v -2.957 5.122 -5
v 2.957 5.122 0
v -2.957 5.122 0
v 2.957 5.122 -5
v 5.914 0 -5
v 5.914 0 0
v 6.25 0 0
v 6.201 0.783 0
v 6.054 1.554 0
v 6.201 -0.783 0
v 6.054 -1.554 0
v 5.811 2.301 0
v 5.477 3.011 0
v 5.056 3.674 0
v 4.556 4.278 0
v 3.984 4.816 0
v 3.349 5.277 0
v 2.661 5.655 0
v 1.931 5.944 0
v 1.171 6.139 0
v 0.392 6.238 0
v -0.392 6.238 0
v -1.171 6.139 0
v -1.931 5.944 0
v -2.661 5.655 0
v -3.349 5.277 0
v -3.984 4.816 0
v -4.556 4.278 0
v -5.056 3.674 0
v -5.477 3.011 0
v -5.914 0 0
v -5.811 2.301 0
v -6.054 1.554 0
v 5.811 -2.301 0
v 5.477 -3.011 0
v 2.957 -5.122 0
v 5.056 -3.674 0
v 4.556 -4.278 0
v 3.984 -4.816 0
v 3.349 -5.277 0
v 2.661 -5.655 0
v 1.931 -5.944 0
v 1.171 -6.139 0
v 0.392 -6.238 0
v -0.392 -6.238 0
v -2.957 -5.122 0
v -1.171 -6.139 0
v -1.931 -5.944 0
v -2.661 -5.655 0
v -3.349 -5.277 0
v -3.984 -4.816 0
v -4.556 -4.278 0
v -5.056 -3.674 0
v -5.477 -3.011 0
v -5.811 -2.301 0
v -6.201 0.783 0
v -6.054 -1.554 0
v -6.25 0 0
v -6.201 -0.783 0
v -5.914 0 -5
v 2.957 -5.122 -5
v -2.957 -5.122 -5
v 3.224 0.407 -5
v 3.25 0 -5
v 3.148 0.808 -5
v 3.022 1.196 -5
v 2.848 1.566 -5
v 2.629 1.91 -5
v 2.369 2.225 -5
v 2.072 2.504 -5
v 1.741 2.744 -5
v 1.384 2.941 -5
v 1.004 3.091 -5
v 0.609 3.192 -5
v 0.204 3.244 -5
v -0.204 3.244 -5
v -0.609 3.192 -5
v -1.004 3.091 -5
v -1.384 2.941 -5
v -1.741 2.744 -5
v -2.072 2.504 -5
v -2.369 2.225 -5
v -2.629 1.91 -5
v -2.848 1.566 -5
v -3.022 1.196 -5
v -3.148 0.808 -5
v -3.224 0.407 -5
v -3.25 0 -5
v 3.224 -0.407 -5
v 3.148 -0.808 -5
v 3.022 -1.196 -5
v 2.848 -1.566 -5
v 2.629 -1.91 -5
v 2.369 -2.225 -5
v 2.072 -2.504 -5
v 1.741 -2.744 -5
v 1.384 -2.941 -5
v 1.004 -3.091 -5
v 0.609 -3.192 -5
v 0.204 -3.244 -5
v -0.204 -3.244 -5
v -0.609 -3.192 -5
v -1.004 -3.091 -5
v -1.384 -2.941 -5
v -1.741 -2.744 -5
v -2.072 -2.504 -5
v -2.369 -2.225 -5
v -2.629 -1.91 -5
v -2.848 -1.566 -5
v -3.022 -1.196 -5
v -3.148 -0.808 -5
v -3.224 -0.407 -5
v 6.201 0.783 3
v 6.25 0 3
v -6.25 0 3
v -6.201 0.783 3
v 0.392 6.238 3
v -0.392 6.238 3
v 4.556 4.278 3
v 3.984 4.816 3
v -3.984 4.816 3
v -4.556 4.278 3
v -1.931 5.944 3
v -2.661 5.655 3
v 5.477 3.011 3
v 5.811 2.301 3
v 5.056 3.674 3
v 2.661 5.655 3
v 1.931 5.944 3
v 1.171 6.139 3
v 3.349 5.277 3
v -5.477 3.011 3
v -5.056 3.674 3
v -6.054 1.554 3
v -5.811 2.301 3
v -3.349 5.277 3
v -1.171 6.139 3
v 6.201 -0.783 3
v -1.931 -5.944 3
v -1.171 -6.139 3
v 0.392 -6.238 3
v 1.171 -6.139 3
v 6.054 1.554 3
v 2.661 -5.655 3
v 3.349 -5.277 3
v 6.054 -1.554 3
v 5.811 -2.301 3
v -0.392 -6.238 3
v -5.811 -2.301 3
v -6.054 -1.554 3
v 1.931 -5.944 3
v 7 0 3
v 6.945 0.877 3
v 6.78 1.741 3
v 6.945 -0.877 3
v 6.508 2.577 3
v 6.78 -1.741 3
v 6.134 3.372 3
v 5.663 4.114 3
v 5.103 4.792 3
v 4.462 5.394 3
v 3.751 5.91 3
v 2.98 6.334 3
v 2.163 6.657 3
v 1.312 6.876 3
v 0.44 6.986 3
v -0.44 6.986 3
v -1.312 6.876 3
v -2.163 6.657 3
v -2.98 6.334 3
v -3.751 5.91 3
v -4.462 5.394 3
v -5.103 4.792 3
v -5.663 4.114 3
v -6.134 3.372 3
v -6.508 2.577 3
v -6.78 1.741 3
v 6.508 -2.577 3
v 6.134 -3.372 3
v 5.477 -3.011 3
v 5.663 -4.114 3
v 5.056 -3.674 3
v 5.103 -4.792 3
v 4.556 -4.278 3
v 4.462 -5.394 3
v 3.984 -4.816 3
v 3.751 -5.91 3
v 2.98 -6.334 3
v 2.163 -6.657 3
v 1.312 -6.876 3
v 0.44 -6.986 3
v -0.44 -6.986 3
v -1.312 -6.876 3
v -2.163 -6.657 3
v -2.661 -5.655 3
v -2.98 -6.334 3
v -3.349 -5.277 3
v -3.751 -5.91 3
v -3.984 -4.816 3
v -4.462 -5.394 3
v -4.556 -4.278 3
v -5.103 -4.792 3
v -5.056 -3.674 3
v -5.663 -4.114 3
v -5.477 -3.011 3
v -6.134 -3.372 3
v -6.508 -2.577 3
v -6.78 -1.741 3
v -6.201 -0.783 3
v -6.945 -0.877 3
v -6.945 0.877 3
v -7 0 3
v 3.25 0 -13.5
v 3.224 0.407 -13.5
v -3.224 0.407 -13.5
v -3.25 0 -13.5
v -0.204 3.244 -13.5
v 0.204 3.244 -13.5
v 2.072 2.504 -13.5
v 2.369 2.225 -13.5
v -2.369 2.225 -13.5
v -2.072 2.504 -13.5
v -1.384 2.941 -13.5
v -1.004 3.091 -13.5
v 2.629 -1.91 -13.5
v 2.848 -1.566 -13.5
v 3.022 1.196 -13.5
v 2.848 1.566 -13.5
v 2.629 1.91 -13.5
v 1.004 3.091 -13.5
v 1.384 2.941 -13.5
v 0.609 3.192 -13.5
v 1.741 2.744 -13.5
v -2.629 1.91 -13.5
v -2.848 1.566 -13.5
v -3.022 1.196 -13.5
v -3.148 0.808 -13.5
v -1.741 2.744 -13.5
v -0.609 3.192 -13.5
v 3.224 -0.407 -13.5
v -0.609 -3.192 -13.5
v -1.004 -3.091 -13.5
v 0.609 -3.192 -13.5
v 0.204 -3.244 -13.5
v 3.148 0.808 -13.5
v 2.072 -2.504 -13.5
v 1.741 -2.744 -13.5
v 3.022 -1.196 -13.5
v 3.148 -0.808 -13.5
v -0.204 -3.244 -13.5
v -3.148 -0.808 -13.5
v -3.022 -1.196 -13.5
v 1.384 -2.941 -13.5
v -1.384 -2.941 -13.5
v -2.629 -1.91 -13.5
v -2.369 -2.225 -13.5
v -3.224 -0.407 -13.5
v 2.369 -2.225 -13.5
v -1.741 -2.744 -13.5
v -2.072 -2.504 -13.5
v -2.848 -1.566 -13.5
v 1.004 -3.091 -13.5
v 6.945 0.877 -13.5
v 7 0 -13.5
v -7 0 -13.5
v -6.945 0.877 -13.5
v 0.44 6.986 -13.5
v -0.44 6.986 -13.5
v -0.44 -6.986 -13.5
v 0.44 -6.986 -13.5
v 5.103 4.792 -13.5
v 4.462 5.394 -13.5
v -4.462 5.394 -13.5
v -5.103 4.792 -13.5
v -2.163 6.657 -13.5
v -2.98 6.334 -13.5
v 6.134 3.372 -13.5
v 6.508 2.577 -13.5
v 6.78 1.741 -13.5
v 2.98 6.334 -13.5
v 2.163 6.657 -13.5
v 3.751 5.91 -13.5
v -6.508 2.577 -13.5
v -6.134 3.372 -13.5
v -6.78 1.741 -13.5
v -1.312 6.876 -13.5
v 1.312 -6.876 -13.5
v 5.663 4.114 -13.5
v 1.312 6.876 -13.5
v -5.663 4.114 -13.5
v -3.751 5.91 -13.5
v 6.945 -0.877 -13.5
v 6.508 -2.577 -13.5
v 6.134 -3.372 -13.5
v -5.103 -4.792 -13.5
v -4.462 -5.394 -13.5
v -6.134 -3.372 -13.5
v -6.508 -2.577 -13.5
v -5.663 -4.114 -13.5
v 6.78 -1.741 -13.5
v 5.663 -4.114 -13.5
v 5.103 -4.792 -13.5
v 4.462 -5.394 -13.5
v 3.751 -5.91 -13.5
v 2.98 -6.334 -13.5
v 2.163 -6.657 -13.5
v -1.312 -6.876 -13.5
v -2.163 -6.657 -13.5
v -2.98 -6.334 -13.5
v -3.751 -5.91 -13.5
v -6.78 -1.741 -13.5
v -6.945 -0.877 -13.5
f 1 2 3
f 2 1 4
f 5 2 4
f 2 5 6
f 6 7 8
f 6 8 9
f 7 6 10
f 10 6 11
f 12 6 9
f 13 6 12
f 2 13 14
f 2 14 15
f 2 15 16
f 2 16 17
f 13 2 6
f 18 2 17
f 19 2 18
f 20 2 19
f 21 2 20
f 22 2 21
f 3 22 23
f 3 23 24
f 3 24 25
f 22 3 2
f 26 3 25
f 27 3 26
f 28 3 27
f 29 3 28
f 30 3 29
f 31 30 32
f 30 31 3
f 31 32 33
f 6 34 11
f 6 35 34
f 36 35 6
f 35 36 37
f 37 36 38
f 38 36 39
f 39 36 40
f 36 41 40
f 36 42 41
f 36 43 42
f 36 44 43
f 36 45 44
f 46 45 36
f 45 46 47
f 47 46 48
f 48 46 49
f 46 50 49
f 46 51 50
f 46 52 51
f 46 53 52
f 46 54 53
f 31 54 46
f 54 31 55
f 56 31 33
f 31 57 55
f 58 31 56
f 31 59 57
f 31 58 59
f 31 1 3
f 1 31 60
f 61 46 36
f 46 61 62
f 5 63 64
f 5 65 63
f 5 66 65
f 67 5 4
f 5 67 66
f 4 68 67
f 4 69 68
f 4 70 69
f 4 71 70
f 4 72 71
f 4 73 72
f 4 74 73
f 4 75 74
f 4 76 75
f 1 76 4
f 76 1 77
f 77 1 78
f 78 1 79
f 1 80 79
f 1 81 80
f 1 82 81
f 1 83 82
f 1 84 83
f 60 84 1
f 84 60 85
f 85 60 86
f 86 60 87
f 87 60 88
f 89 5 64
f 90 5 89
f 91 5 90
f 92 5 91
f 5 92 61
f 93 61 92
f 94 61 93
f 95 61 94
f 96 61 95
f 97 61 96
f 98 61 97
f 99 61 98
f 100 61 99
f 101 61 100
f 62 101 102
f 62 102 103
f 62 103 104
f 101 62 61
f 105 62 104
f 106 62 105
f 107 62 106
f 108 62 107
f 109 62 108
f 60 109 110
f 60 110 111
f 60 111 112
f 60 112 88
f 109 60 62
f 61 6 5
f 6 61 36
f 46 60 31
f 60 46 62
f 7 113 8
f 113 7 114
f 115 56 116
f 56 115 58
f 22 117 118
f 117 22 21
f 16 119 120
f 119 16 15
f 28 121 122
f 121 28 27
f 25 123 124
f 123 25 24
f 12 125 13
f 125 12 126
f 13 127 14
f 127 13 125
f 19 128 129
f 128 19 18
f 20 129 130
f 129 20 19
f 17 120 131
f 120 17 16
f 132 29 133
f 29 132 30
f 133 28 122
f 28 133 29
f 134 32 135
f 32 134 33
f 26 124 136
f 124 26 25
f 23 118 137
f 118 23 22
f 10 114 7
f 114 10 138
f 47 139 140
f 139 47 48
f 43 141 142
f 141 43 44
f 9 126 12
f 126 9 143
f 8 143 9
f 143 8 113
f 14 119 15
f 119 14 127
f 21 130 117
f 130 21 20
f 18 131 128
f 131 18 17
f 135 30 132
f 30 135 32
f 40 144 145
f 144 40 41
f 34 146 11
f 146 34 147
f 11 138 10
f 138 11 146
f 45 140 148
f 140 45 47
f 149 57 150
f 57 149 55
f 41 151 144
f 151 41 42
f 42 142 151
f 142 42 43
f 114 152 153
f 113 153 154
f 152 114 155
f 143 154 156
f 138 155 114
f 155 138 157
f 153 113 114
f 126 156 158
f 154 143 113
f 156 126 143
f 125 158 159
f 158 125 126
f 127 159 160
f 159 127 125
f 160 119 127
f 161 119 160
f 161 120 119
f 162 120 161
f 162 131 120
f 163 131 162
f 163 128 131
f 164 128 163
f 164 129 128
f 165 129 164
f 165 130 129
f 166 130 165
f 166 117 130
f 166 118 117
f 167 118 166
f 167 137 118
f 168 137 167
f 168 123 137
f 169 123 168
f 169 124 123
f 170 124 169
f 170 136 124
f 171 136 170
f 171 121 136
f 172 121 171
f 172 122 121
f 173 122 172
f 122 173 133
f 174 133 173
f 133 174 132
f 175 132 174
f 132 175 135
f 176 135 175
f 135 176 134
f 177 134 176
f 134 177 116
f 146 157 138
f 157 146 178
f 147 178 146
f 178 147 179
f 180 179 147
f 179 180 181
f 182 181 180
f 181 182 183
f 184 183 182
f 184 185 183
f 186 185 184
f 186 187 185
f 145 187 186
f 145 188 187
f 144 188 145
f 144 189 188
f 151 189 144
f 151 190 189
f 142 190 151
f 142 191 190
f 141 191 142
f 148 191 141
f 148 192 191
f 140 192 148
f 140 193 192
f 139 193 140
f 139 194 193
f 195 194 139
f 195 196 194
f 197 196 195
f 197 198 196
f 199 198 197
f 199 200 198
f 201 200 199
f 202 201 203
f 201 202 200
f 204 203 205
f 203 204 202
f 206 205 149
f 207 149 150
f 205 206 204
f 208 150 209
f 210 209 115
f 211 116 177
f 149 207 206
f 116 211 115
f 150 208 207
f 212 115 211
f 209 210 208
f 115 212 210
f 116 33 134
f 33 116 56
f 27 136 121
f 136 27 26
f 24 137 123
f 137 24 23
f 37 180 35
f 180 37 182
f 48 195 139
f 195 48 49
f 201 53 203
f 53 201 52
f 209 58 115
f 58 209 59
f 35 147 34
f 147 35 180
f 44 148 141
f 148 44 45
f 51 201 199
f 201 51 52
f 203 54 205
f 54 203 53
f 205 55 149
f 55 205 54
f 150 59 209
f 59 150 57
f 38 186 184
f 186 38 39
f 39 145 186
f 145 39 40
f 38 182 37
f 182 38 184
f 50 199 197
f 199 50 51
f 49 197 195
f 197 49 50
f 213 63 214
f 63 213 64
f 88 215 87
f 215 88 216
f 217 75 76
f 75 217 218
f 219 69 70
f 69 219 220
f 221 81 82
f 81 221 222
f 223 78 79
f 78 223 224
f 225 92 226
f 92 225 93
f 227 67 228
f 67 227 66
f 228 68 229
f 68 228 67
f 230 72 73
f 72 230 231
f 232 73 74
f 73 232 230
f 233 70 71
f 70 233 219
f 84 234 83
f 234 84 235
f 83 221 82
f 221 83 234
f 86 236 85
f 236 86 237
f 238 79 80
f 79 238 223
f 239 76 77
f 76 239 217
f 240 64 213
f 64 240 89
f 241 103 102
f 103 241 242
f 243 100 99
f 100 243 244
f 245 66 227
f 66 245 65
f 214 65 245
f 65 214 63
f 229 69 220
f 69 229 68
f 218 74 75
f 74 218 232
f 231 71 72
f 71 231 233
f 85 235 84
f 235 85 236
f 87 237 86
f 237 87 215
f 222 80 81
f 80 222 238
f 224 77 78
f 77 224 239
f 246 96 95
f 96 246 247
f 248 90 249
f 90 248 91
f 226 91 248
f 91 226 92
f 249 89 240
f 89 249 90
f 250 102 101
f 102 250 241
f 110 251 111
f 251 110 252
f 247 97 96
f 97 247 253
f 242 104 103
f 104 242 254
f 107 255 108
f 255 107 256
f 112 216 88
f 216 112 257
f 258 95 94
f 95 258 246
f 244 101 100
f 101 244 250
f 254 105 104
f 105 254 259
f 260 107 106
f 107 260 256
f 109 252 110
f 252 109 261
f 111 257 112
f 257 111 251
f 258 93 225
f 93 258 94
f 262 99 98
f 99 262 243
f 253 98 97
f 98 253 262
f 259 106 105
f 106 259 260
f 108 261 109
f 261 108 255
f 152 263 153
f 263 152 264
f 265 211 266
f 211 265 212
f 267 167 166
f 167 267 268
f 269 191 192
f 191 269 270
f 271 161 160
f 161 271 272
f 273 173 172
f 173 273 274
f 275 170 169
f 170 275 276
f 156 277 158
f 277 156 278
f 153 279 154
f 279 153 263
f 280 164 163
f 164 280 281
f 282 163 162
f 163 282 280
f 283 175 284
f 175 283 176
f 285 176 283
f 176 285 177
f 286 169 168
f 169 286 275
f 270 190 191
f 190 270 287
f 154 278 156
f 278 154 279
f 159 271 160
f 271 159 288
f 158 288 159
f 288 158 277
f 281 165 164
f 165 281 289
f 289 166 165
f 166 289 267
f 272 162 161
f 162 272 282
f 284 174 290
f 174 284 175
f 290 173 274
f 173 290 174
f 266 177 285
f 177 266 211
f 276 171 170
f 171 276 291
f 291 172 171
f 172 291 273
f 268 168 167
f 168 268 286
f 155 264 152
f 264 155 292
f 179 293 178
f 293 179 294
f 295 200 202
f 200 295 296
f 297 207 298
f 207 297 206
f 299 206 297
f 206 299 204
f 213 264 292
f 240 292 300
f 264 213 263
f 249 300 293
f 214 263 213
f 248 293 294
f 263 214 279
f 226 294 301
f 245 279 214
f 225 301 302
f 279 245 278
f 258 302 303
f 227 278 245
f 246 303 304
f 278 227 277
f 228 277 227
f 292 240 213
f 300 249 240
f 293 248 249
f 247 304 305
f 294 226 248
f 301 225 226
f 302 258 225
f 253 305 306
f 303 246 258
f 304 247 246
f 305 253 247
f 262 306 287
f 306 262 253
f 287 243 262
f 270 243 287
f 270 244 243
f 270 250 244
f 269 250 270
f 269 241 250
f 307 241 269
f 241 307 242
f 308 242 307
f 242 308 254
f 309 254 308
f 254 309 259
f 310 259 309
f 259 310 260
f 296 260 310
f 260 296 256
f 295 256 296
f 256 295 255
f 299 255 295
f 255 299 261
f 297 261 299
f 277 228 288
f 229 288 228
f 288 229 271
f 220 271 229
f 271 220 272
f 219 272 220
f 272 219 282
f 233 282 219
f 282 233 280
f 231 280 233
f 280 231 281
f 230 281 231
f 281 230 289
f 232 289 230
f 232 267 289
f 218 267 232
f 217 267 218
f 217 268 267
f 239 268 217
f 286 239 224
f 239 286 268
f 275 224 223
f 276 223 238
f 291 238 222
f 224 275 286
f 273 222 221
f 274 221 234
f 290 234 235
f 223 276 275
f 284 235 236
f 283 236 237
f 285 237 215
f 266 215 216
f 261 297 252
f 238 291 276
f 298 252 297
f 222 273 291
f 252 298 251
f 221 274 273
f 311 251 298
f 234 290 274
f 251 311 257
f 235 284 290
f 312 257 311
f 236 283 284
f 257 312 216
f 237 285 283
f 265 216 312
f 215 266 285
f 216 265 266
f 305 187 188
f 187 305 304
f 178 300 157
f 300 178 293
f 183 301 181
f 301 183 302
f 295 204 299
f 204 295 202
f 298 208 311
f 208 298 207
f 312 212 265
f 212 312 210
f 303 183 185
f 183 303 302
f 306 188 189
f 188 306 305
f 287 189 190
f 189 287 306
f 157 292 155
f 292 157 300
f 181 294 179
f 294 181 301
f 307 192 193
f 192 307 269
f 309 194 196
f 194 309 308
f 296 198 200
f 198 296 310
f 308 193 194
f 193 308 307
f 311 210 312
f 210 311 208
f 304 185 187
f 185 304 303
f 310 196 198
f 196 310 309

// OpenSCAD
$fn = 50;


difference() {
	union() {
		translate(v = [0, 0, -13.5000000000]) {
			cylinder(h = 16.5000000000, r = 7.0000000000);
		}
	}
	union() {
		translate(v = [0, 0, 0]) {
			rotate(a = [0, 0, 0]) {
				difference() {
					union() {
						translate(v = [0, 0, -5]) {
							linear_extrude(height = 5) {
								polygon(points = [[5.9142500000, 0.0000000000], [2.9571250000, 5.1218907443], [-2.9571250000, 5.1218907443], [-5.9142500000, 0.0000000000], [-2.9571250000, -5.1218907443], [2.9571250000, -5.1218907443]]);
							}
						}
					}
					union();
				}
			}
		}
		#cylinder(h = 3, r = 6.2500000000);
		#translate(v = [0, 0, -100.0000000000]) {
			cylinder(h = 200, r = 3.2500000000);
		}
	}
}
